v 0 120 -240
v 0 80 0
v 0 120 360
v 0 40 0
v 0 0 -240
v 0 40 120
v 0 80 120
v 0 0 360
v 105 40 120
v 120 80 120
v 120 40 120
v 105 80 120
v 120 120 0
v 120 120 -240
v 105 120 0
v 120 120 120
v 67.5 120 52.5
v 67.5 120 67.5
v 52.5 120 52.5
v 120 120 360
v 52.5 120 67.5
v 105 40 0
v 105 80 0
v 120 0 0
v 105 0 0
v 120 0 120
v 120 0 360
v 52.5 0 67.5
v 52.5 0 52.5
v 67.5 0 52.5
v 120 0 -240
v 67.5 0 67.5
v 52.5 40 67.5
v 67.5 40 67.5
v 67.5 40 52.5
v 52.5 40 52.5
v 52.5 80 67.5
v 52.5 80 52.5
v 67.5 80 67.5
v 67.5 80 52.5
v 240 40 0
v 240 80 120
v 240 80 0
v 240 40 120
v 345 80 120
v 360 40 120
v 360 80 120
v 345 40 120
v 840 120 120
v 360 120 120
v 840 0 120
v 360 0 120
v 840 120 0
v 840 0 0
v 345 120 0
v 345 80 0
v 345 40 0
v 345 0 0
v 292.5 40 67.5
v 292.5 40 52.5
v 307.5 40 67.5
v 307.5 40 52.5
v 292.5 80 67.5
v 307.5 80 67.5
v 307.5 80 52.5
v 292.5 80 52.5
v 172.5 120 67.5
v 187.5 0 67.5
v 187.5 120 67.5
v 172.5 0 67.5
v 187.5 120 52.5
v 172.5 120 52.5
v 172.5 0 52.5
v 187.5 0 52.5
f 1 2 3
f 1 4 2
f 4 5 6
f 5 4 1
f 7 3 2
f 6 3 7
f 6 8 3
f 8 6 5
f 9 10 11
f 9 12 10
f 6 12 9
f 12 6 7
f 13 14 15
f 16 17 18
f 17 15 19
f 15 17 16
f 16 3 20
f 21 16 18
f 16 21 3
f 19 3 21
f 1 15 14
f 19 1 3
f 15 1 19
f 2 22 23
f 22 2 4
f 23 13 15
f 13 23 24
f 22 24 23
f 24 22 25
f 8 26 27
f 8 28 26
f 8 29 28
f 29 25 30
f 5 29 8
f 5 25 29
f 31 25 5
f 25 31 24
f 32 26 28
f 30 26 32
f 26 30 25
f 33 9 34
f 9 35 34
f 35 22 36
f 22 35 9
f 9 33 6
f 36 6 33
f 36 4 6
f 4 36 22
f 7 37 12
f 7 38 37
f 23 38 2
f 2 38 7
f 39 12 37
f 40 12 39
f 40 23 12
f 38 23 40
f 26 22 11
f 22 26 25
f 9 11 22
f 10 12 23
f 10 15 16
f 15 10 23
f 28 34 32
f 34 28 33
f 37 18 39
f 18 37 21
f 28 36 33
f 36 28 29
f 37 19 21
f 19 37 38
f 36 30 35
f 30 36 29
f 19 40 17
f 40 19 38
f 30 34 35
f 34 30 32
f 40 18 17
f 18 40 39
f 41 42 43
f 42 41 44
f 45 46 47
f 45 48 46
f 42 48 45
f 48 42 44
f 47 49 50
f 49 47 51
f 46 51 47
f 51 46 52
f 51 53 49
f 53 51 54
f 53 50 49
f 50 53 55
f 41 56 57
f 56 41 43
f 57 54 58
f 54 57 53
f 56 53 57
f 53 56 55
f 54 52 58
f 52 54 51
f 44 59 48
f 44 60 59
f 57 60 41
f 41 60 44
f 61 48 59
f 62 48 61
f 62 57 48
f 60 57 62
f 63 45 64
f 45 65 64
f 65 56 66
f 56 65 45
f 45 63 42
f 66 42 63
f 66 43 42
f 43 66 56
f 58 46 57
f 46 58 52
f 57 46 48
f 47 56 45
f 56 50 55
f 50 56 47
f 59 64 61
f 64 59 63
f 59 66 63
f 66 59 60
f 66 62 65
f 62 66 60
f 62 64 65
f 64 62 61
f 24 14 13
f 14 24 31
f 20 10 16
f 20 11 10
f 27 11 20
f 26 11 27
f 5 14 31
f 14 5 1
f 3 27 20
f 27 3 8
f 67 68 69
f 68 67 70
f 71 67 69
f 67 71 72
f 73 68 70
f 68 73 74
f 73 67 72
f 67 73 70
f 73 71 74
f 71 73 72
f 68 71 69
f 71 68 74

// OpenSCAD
// file: common/board.scad
// board.scad

BOARD_DEFAULT_LENGTH = 600;
BOARD_DEFAULT_WIDTH = 120;
BOARD_DEFAULT_THICKNESS = 120;

function board_get_default_size()
    = [BOARD_DEFAULT_LENGTH, BOARD_DEFAULT_WIDTH, BOARD_DEFAULT_THICKNESS];

module board(size = board_get_default_size(), center = false)
{
    // size[0] is always with the grain
    // size[1] is against the grain
    // size[2] is the board thickness
    cube(size = size, center = center);
}
// main file
// kashigi_ooire_hozo_sashi.scad

use <common/board.scad>

PIN_RATIO = 1/8;
OFFSET_RATIO = 1/8;
TENON_WIDTH_RATIO = 1/3;

module kashigi_ooire_hozo_sashi_pin(board_size = board_get_default_size())
{
    pin_width = board_size[1] * PIN_RATIO;

    pin_size = [
            board_size[1],
            pin_width,
            pin_width];

    pin_offset = [
            board_size[2]/2 - pin_width/2,
            pin_size[0],
            board_size[2]/2 - pin_width/2];

    translate(pin_offset)
        rotate([0, 0, -90])
            cube(pin_size);
}

module kashigi_ooire_hozo_sashi_tenon(board_size = board_get_default_size())
{
    offsetx = board_size[2] * OFFSET_RATIO;
    tenon_width = board_size[1] * TENON_WIDTH_RATIO;

    cutout_size = [
            board_size[1] - offsetx,
            (board_size[1] - tenon_width)/2,
            board_size[2]];

    slope_points = [
            [-offsetx, 0],
            [-offsetx, -board_size[1]],
            [0, -board_size[1]]];

    difference()
    {
        board(board_size);

        cube(cutout_size);

        translate([0, board_size[1] - tenon_width, 0])
            cube(cutout_size);

        translate([board_size[1], 0, 0])
            rotate([-90, 0, 0])
                linear_extrude(
                        height = cutout_size[1],
                        center = false,
                        convexity = 0,
                        twist = 0)
                    polygon(points = slope_points);

        translate([board_size[1], board_size[1] - tenon_width, 0])
            rotate([-90, 0, 0])
                linear_extrude(
                        height = cutout_size[1] + 0.01,
                        center = false,
                        convexity = 0,
                        twist = 0)
                    polygon(points = slope_points);

        kashigi_ooire_hozo_sashi_pin(board_size);
    }
}

module kashigi_ooire_hozo_sashi_mortise(board_size = board_get_default_size())
{
    offset_center = [
            -board_size[0]/2,
            -board_size[1]/2,
            -board_size[2]/2];

    difference()
    {
        translate([board_size[2]/2, board_size[1]/2, board_size[2]/2])
            rotate([0, 90, 0])
                translate(offset_center)
                    board(board_size);

        kashigi_ooire_hozo_sashi_tenon(board_size);

        kashigi_ooire_hozo_sashi_pin(board_size);
    }
}

module kashigi_ooire_hozo_sashi_example(board_size = board_get_default_size())
{
    translate([2 * board_size[1], 0, 0])
        kashigi_ooire_hozo_sashi_tenon(board_size);

    kashigi_ooire_hozo_sashi_mortise(board_size);

    translate([board_size[1], 0, 0])
        kashigi_ooire_hozo_sashi_pin(board_size);
}

kashigi_ooire_hozo_sashi_example();
